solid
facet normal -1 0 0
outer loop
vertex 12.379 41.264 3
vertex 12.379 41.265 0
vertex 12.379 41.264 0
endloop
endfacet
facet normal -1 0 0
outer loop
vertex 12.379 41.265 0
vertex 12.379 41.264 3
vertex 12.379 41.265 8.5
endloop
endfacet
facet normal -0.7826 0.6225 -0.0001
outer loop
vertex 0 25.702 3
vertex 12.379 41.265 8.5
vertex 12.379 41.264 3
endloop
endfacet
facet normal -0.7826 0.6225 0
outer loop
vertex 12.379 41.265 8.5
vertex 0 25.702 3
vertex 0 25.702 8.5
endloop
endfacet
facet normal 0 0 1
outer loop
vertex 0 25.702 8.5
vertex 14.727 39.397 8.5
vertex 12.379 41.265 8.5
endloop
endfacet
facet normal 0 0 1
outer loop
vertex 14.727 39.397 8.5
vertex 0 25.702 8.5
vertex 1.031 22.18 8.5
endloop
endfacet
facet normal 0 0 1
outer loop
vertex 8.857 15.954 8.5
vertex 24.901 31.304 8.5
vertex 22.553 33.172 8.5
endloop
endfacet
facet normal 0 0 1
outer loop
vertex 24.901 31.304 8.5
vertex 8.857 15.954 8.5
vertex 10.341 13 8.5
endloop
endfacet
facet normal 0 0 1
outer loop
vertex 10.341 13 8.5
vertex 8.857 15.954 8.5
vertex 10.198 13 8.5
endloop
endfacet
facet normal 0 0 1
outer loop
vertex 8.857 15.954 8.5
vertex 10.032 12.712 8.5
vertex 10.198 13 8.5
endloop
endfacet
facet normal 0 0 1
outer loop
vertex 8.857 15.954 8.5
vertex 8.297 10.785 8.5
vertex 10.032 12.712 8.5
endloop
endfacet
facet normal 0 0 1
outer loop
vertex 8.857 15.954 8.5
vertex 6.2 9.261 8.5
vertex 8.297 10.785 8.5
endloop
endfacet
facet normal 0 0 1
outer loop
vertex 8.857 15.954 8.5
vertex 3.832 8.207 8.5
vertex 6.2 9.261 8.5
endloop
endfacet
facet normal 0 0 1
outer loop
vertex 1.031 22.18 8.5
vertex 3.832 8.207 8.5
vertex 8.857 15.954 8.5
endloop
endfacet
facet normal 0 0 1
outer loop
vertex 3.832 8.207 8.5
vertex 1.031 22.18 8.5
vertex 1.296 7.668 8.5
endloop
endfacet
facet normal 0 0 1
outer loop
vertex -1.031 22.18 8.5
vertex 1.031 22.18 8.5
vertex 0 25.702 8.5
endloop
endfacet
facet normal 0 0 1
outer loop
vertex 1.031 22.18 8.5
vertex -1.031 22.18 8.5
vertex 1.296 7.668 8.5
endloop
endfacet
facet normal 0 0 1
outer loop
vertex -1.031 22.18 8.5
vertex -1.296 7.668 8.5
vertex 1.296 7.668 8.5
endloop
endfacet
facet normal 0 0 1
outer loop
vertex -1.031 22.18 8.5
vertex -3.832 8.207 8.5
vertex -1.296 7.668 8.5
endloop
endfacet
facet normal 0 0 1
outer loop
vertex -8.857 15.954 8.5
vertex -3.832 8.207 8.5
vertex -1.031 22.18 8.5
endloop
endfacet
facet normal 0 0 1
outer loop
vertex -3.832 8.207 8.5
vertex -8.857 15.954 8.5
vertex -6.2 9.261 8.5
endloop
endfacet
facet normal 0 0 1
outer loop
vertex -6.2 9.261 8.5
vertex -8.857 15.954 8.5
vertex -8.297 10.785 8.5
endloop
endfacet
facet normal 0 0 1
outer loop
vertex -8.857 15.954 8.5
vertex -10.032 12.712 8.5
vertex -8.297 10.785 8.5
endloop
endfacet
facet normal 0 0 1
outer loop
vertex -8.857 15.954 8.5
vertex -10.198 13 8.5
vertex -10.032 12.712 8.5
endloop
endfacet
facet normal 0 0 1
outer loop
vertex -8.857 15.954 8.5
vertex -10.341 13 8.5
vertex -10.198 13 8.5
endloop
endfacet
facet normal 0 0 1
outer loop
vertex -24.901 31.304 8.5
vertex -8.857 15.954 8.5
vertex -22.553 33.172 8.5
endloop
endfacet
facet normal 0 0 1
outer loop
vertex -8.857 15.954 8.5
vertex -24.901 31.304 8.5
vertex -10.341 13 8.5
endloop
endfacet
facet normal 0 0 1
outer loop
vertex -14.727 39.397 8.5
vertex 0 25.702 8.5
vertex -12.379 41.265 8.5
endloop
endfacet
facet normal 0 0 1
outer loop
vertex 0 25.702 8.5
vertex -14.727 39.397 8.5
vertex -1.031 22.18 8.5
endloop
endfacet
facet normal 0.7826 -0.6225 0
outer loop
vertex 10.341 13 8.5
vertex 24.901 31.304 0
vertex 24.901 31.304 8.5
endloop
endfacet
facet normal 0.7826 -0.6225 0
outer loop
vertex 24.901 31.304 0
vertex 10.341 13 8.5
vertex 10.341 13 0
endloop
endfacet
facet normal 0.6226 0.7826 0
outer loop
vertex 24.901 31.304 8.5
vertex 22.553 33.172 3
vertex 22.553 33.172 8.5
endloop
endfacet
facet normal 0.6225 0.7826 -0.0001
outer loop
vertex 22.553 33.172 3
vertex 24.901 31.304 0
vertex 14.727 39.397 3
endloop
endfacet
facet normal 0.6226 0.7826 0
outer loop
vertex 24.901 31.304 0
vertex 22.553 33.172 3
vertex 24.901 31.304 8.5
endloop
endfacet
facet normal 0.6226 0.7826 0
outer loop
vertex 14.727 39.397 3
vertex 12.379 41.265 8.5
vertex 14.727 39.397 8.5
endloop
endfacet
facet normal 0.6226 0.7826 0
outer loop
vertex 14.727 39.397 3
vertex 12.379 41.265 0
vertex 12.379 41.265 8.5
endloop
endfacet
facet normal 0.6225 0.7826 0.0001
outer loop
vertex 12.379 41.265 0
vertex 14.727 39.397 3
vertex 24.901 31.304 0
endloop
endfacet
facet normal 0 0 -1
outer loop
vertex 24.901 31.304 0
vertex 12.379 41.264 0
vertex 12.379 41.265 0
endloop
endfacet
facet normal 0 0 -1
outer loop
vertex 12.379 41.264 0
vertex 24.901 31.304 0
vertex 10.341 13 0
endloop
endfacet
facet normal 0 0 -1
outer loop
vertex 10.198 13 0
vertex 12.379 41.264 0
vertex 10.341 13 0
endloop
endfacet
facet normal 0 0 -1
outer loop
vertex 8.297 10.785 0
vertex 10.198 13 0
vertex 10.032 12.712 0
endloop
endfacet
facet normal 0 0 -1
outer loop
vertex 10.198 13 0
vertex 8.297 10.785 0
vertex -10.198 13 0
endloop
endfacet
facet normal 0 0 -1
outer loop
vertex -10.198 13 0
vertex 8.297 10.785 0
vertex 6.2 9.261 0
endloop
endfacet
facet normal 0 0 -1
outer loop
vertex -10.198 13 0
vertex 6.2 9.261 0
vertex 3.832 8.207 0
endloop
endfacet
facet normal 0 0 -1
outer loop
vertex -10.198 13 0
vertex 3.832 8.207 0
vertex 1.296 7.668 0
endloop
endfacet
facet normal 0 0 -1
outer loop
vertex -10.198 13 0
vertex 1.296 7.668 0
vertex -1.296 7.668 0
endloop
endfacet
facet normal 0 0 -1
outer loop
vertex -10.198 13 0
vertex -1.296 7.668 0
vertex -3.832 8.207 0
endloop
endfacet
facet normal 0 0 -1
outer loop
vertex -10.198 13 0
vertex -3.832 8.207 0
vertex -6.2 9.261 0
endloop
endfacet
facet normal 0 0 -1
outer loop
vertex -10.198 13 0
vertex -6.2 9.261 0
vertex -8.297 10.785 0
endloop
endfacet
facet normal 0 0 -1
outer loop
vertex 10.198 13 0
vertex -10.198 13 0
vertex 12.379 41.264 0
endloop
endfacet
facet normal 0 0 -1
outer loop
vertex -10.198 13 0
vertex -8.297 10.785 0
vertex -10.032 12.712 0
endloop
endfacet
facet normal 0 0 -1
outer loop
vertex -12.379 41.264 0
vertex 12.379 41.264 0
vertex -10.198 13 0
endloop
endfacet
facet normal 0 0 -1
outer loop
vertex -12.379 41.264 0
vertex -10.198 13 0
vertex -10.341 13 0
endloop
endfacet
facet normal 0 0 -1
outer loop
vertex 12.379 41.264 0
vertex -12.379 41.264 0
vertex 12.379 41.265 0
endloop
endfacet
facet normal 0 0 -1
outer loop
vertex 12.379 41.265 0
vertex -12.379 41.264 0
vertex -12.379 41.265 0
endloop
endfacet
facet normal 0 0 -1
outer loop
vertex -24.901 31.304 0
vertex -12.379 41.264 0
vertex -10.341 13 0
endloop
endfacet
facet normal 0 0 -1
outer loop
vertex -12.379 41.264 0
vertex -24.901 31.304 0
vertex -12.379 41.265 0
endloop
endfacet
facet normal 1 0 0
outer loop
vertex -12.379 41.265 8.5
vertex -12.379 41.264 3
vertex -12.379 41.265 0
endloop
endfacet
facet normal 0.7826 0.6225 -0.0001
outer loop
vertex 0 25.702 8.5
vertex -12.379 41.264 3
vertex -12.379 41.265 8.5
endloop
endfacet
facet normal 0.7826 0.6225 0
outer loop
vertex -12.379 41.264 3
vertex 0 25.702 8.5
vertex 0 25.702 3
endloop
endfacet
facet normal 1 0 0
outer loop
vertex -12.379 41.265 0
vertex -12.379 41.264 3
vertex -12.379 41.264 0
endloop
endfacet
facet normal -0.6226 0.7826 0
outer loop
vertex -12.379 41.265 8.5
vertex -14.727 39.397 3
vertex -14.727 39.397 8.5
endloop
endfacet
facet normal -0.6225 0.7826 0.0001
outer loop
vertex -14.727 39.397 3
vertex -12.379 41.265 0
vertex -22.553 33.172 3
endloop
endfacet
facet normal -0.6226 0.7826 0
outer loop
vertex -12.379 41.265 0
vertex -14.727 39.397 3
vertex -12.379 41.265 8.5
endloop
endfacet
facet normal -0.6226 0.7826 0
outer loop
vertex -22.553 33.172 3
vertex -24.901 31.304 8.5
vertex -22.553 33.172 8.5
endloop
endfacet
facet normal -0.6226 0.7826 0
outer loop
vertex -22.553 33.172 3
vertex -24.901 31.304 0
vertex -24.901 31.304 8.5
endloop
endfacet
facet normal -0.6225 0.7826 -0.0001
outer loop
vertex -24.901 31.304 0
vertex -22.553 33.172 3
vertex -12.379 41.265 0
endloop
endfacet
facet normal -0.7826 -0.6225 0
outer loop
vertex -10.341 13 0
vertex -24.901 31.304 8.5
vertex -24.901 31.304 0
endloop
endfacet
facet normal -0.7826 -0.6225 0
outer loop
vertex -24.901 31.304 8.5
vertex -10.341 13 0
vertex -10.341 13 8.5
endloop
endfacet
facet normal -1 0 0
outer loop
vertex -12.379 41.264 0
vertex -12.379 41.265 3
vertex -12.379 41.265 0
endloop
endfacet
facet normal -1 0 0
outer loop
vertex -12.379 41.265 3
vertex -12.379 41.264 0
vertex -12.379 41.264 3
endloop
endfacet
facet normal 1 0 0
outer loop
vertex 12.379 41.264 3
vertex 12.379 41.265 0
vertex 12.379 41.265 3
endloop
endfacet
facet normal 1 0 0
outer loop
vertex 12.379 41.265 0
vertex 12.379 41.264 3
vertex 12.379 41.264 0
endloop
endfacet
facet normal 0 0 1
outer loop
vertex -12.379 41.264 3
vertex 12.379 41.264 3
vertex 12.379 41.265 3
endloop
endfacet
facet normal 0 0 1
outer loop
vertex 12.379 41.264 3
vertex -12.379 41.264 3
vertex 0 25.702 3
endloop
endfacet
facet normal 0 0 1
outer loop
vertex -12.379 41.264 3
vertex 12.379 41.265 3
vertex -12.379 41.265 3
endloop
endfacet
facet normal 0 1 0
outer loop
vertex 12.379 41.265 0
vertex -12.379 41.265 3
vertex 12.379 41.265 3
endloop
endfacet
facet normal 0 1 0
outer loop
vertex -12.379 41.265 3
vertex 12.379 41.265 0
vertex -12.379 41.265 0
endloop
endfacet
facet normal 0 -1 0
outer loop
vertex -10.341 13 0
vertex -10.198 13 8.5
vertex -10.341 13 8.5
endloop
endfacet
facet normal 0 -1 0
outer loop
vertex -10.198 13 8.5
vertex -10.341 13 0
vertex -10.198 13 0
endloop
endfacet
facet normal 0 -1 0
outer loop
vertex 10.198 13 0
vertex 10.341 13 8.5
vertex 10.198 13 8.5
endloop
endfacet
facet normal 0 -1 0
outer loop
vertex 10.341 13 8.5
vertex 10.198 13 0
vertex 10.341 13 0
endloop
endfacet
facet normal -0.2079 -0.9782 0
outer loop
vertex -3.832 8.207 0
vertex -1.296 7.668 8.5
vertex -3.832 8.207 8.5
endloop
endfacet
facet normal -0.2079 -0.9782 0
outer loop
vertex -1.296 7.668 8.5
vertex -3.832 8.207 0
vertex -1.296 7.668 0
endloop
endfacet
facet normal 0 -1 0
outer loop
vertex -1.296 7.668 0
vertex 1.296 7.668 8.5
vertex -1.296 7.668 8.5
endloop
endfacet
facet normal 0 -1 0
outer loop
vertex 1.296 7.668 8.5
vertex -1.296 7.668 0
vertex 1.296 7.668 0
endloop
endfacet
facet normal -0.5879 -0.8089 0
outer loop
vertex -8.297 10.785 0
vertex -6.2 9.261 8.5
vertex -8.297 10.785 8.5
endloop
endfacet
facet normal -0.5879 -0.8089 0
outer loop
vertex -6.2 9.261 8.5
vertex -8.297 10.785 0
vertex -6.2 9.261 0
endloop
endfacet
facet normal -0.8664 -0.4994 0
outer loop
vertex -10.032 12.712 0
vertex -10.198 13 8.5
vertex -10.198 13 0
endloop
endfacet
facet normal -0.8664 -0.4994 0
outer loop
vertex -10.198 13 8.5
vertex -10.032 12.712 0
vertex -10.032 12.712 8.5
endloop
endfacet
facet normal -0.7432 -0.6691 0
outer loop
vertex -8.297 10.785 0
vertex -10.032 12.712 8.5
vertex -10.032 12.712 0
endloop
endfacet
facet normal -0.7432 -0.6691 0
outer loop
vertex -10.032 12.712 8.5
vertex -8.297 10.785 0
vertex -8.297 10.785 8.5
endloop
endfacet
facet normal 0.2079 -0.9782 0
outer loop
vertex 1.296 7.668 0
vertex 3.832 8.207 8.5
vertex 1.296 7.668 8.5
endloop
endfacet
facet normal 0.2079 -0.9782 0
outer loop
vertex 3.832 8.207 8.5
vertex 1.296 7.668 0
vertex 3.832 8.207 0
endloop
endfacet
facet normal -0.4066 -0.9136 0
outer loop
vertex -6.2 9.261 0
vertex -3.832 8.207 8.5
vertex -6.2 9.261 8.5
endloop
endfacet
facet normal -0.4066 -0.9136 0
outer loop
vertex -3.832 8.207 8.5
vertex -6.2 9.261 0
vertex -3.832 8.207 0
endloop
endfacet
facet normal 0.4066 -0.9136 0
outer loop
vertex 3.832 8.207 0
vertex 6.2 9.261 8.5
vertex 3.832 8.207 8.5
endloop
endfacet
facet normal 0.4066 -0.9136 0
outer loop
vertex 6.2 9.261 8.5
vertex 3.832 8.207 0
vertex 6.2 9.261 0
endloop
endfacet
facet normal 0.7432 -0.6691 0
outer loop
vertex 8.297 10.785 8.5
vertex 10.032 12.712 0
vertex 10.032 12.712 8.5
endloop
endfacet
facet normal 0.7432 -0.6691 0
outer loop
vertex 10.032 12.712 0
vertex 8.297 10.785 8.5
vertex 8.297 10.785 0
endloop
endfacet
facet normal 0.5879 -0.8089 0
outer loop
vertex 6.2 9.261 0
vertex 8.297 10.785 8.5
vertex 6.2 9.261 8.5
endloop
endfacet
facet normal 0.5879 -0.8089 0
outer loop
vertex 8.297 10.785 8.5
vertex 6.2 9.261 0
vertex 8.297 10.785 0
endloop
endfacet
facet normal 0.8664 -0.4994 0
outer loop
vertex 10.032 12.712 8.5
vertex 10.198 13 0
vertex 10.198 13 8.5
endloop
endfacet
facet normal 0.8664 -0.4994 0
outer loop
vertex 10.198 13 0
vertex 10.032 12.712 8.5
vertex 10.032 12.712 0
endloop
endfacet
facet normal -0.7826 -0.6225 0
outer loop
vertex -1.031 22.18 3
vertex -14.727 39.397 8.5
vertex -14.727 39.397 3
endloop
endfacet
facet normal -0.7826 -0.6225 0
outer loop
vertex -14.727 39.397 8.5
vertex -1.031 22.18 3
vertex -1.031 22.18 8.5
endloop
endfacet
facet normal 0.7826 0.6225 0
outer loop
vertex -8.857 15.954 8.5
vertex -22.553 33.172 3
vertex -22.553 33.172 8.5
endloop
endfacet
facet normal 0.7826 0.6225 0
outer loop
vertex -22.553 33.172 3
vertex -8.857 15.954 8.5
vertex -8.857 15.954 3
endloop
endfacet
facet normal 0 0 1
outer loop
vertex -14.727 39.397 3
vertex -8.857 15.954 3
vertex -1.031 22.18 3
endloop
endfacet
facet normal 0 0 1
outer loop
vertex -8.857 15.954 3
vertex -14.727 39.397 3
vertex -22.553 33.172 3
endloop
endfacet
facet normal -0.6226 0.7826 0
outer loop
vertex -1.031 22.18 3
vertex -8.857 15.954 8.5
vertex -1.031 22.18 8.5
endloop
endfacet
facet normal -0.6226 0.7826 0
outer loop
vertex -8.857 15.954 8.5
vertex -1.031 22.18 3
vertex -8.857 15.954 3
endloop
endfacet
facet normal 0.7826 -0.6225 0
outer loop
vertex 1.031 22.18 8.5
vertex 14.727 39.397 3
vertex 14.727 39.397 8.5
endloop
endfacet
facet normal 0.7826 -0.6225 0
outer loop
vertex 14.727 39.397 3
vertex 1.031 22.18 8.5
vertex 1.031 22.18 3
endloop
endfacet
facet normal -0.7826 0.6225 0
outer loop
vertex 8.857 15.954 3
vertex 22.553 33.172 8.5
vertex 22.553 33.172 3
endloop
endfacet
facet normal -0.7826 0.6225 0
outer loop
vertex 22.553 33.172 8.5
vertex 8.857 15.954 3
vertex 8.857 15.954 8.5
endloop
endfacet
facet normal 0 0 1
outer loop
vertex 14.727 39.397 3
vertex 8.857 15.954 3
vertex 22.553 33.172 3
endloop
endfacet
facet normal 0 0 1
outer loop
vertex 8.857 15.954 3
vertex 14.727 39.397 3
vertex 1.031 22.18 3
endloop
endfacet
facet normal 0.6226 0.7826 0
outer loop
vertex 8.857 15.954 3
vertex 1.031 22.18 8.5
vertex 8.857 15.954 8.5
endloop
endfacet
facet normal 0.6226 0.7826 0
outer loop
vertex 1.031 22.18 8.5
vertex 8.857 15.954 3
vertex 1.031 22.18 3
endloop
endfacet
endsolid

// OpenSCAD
ml = 40;
thick = 3;
d = 10;
a = 38.5;
h = thick + d / 2 + 0.5;

difference() {
    union() {
        rotate([0, 0, -a]) translate([-d - 2 * thick, 0, 0])
            cube([d + 2 * thick, ml, thick + d / 2 + 0.5]);
        rotate([0, 0, a])
            cube([d + 2 * thick, ml, thick + d / 2 + 0.5]);
        linear_extrude(height = thick)
            polygon(points = [
                [sin(a) * ml - cos(a) * (d + 2 * thick), cos(a) * ml + sin(a) * (d + 2 * thick)],
                [0, ml / 2],
                [-sin(a) * ml + cos(a) * (d + 2 * thick), cos(a) * ml + sin(a) * (d + 2 * thick)]],
        paths = [[0, 1, 2]]);
    }
    rotate([0, 0, a])
        translate([thick, 18, thick]) cube([d, ml + 0.2, d / 2 + 0.5 + 0.1]);
    rotate([0, 0, -a])
        translate([-d - thick, 18, thick]) cube([d, ml + 0.2, d / 2 + 0.5 + 0.1]);
    difference() {
        translate([-15, 0, -0.2]) cube([30, 13, h + 0.4]);
        translate([0, 20, -0.1])
            rotate_extrude(convexity = 16) square([d + 2.4, h + 0.2]);
    }
}
